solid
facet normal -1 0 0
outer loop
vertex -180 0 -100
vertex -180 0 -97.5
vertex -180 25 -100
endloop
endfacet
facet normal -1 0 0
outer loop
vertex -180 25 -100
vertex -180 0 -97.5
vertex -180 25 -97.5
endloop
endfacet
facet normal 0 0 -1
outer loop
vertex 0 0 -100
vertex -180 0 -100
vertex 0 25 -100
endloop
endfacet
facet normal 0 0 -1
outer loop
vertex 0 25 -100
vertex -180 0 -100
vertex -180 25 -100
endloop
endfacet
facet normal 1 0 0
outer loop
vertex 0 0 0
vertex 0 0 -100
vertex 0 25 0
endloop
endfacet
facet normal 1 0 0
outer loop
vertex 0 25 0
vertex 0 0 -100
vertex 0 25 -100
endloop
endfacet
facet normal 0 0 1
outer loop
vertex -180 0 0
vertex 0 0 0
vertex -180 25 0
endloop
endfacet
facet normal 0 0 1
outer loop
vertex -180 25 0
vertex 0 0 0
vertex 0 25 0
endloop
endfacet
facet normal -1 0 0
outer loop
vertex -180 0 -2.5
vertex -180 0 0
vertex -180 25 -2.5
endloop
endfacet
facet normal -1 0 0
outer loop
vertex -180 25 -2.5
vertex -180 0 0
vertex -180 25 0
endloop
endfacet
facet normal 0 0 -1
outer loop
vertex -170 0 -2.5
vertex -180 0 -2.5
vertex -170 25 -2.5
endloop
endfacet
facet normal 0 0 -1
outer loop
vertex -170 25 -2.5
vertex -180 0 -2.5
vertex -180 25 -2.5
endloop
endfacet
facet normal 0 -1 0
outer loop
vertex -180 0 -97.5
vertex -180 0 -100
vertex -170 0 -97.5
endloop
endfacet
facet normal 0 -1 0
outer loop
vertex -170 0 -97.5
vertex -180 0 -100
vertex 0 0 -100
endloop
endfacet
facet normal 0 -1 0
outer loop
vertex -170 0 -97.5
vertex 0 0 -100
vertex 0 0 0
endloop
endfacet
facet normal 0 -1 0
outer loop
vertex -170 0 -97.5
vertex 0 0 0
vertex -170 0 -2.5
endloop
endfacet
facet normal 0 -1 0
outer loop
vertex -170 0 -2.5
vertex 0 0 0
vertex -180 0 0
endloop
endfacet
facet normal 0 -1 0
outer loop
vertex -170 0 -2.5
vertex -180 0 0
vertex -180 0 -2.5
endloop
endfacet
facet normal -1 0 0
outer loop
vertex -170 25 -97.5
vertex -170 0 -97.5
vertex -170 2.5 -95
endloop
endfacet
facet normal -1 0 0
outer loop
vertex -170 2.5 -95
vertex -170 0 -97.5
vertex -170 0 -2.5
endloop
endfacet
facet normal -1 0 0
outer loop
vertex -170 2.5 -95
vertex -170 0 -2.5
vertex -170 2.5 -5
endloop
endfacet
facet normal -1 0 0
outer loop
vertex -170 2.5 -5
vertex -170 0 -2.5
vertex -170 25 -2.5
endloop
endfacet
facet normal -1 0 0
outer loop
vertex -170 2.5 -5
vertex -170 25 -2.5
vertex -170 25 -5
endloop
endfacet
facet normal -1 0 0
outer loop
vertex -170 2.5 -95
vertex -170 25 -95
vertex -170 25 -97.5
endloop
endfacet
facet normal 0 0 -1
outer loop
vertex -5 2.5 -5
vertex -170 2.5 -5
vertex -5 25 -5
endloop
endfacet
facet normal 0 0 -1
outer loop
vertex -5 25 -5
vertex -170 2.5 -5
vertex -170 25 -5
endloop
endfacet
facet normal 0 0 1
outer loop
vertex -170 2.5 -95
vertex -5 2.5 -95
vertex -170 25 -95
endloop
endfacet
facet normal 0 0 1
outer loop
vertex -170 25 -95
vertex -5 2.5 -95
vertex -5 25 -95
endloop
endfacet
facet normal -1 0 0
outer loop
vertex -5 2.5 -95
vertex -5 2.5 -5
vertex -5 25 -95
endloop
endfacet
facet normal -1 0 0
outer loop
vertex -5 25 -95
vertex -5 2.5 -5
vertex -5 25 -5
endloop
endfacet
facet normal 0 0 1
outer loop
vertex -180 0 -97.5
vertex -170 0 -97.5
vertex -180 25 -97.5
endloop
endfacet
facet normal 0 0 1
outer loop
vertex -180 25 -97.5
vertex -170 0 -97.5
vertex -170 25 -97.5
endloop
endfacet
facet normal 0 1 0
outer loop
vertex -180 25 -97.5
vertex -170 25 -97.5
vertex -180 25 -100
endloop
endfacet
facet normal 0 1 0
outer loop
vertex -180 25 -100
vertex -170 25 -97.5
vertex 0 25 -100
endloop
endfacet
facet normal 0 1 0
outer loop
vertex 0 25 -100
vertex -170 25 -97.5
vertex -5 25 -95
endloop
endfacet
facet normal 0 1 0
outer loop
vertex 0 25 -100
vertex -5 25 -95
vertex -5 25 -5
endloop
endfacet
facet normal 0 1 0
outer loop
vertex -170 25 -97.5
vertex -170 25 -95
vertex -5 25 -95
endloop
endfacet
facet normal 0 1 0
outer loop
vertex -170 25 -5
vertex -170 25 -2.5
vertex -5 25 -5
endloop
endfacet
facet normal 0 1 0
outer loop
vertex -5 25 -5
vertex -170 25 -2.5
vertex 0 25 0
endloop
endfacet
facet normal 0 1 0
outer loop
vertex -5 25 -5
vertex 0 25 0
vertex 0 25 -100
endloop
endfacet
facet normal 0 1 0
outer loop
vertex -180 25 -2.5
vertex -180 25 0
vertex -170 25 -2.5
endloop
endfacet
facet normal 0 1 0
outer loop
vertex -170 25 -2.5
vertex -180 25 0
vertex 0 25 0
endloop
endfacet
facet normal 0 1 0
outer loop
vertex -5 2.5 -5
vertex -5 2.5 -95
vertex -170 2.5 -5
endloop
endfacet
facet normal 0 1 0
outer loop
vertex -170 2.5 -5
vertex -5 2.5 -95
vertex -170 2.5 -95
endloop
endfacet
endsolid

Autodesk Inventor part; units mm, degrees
ref_plane "YZ Plane" through (0, 0, 0) normal (1, 0, 0) x (0, 1, 0)
ref_plane "XZ Plane" through (0, 0, 0) normal (0, 1, 0) x (-1, 0, 0)
ref_plane "XY Plane" through (0, 0, 0) normal (0, 0, 1) x (1, 0, 0)
sketch "Skizze1" plane through (0, 0, 0) normal (0, 1, 0) x (-1, 0, 0)
  line L0 (0, 0) -> (180, 0)
  line L1 (180, -100) -> (0, -100)
  line L2 (0, -100) -> (0, 0)
  line L3 (5, -95) -> (5, -5)
  line L4 (5, -5) -> (170, -5)
  line L5 (5, -95) -> (170, -95)
  line L6 (170, -95) -> (170, -97.5)
  line L7 (170, -97.5) -> (180, -97.5)
  line L8 (170, -5) -> (170, -2.5)
  line L9 (170, -2.5) -> (180, -2.5)
  line L10 (180, 0) -> (180, -2.5)
  line L11 (180, -100) -> (180, -97.5)
  dimension "d0" = 180
  dimension "d1" = 100
  dimension "d2" = 90
  dimension "d3" = 165
extrude "Extrusion1" add sketch "Skizze1" along normal blind 25
sketch "Skizze2" plane through (-5, 0, -95) normal (-1, 0, 0) x (0, 0, 1)
  line L0 (90, 0) -> (90, 25) projected
  line L1 (0, 0) -> (90, 0) projected
  line L2 (90, 0) -> (90, 25) projected
  line L3 (0, 25) -> (90, 25) projected
  line L4 (0, 0) -> (0, 25) projected
  line L5 (0, 0) -> (90, 0)
  line L6 (90, 0) -> (90, 2.5)
  line L7 (90, 2.5) -> (0, 2.5)
  line L8 (0, 2.5) -> (0, 0)
  point P0 (95, 0)
  dimension "d6" = 90
  dimension "d7" = 2.5
extrude "Extrusion2" add sketch "Skizze2" along normal blind 165 contours L1 L4 L7 L0
properties part number "Schublade Teil B"
